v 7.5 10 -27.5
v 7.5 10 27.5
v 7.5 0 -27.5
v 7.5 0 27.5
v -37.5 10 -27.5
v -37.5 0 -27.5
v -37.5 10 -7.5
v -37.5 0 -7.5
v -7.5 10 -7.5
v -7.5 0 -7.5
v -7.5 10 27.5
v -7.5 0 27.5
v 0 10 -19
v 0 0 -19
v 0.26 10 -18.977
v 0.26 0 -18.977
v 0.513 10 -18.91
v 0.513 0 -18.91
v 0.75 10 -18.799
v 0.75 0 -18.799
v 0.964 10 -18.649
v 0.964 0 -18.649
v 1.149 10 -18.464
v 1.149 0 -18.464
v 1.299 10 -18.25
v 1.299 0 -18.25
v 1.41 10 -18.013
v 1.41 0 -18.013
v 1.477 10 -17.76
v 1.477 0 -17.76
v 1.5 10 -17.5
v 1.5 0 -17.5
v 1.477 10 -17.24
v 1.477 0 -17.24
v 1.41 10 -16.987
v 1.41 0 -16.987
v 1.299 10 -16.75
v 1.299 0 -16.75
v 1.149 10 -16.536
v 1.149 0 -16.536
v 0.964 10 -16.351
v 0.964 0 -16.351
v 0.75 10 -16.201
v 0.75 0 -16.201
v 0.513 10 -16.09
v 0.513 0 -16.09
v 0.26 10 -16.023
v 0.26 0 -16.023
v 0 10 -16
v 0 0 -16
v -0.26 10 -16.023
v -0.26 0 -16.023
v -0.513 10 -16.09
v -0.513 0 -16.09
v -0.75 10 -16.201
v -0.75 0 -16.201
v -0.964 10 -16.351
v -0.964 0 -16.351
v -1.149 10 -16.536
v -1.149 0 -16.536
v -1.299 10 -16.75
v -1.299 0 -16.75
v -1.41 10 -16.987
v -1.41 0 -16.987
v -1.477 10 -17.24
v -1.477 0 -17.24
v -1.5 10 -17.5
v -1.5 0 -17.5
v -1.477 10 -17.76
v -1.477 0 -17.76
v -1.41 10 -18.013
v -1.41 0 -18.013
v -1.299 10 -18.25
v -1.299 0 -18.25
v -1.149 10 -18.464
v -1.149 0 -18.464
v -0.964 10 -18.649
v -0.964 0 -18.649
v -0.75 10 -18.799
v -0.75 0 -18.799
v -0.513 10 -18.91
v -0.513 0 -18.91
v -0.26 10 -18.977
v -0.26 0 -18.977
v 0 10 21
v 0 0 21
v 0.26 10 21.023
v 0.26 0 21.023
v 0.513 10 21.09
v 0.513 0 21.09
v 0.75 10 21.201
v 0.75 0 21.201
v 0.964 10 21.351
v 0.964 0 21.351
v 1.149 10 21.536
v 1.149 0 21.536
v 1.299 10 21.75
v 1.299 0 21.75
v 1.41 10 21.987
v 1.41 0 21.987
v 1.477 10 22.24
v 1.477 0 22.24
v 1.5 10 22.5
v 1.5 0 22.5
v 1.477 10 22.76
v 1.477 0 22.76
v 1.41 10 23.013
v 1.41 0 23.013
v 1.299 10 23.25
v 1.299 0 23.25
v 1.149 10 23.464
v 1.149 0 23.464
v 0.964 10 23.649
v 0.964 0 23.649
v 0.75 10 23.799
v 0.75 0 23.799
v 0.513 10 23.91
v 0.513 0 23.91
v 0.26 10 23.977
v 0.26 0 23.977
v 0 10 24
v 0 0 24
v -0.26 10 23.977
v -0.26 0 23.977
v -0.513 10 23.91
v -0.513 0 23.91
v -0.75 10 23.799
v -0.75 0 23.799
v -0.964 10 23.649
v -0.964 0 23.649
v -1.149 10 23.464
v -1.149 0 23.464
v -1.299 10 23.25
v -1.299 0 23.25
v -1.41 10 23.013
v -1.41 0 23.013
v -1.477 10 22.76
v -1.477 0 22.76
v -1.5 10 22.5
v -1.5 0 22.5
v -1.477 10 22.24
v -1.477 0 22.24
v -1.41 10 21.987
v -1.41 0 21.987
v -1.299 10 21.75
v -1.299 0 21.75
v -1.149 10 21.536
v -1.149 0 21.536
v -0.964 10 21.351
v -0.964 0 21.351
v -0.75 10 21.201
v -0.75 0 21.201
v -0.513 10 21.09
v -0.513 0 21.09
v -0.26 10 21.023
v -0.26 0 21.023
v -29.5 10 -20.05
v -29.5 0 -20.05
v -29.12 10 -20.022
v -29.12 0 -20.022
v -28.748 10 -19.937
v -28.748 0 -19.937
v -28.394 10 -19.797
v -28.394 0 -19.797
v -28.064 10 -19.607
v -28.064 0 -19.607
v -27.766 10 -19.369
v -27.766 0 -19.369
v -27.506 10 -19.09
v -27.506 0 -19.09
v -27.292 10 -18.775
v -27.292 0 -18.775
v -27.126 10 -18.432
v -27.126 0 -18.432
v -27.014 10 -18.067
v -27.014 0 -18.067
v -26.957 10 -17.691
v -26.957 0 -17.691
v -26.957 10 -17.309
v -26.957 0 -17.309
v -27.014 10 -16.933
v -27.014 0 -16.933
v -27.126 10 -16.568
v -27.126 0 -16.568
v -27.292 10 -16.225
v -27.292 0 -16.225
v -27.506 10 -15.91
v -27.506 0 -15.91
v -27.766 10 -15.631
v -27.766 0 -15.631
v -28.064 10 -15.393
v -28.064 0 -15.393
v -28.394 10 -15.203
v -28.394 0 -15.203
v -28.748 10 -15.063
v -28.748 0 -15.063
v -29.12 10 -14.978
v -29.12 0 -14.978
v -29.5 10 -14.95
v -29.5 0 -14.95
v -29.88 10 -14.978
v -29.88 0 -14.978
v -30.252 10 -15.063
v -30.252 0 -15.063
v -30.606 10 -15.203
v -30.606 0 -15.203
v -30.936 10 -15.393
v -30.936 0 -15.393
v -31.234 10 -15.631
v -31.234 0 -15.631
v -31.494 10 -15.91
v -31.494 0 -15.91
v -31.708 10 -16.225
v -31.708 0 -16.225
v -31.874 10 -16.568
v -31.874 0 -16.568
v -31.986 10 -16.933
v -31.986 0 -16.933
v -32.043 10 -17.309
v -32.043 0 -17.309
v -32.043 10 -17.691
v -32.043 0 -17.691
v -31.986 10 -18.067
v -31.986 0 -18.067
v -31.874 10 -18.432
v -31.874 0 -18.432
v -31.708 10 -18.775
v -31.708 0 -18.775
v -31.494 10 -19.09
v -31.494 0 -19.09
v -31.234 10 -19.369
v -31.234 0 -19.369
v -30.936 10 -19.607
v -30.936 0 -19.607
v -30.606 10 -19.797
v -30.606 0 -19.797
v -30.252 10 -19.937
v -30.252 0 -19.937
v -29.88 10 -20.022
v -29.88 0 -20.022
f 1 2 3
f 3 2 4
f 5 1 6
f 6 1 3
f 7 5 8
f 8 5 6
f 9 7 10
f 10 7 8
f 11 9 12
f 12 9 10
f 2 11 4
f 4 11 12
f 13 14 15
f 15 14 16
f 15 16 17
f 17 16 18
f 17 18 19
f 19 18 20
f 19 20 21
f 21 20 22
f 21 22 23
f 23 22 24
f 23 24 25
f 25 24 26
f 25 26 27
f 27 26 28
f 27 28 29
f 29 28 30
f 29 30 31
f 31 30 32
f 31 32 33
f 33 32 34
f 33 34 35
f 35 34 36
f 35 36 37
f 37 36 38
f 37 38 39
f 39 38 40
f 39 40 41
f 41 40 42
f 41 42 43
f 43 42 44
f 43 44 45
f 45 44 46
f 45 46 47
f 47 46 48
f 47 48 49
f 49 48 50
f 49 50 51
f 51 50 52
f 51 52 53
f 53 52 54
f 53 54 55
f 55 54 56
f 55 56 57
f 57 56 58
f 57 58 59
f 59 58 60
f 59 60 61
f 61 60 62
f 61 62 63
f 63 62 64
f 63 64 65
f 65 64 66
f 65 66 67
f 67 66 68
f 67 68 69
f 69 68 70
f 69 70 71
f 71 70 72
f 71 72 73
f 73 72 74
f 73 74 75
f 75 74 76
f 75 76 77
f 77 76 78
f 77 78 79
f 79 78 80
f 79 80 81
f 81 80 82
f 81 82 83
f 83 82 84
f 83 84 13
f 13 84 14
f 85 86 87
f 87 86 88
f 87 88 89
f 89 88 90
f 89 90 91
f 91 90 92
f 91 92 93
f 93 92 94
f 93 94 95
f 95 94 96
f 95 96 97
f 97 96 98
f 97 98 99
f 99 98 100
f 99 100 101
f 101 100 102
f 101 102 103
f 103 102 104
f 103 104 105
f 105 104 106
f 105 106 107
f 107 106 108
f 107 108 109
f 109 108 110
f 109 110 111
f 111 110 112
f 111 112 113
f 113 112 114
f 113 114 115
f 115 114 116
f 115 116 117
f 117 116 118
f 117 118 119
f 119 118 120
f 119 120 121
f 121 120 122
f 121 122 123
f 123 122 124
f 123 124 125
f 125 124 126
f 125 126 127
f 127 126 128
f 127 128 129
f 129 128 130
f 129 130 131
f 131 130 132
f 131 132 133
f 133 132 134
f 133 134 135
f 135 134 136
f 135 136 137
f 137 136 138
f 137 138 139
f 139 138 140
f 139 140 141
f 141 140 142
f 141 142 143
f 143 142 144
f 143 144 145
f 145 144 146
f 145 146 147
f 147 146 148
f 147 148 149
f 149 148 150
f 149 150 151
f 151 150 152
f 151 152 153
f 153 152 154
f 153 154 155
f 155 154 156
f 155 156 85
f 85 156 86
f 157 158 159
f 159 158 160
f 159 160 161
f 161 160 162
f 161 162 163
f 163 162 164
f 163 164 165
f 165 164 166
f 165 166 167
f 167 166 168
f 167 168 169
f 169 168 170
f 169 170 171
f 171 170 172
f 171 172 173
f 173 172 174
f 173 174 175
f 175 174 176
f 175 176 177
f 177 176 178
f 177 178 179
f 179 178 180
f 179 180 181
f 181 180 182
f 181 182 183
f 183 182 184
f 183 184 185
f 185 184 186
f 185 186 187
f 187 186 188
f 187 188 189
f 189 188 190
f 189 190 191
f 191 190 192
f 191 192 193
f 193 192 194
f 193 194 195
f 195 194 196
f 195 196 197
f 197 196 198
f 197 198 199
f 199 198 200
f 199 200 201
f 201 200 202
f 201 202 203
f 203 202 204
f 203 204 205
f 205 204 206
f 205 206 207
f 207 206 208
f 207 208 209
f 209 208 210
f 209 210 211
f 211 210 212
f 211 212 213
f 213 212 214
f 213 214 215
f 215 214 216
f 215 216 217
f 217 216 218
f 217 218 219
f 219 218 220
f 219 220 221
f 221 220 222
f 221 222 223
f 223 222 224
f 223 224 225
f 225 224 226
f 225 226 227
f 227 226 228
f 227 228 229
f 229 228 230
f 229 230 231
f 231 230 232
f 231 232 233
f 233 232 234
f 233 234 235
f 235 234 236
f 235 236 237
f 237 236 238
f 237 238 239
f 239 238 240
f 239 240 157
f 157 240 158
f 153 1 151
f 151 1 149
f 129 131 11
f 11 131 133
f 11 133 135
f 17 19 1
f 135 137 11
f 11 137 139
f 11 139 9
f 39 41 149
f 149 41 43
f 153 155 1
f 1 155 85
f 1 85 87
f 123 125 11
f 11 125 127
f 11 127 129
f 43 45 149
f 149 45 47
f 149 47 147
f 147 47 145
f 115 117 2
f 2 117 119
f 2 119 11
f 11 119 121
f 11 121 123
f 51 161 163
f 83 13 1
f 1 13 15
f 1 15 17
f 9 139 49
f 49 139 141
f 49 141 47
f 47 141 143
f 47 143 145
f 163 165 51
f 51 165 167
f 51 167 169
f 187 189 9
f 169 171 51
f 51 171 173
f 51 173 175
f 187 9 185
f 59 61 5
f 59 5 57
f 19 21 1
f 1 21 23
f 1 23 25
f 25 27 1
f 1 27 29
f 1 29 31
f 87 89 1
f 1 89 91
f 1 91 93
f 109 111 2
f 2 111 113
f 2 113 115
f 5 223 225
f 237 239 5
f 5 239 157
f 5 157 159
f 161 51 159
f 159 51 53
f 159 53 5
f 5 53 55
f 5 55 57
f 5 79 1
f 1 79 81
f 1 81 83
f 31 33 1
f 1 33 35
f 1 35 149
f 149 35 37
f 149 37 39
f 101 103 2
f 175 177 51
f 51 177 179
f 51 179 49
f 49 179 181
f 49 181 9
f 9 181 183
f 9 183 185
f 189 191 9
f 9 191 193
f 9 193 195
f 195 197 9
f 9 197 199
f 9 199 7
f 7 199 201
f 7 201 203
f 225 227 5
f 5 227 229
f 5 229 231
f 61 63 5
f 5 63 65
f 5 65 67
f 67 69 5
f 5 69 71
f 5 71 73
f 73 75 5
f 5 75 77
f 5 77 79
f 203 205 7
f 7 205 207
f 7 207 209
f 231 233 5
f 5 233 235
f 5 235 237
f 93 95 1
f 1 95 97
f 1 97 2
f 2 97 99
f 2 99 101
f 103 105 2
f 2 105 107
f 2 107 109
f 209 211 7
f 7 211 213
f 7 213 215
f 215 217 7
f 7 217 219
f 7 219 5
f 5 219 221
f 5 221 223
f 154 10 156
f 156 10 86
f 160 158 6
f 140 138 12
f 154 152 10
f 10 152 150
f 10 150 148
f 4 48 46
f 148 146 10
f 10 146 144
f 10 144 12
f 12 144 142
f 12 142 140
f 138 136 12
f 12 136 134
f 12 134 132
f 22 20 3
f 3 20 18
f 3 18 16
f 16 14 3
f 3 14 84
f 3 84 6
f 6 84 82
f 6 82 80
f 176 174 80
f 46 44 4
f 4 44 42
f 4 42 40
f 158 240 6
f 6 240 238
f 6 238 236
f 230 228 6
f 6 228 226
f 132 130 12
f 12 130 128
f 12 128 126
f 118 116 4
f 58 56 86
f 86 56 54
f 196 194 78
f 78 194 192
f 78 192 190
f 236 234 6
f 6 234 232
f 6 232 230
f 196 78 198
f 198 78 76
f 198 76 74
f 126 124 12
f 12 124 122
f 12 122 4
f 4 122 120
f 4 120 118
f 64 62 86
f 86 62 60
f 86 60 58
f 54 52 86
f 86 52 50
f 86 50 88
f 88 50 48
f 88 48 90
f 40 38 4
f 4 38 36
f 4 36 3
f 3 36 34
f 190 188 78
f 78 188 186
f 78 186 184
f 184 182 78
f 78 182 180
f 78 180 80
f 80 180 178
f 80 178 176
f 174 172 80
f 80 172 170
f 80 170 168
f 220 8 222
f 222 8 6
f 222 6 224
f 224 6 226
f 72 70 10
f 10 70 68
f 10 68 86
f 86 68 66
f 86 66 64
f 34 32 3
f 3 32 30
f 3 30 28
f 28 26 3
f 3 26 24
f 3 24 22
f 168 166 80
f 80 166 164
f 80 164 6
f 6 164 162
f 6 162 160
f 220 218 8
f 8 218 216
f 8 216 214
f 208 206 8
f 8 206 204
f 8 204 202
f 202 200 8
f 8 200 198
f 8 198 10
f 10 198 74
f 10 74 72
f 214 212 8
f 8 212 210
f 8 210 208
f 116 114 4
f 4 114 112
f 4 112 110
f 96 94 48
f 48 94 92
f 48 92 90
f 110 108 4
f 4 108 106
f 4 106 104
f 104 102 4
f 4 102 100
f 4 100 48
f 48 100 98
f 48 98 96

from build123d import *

# Parameters (mm, degrees)
SKETCH1_W           = 15
SKETCH1_H           = 55
SKETCH1_R           = 1.5
SKETCH1_W_2         = 30
SKETCH1_H_2         = 20
SKETCH1_R_2         = 2.55
BOSS_EXTRUDE1_DEPTH = 10


with BuildPart() as part:
    # Sketch1 → Boss-Extrude1 (new body)
    # profile 1 of 2: a face of its own
    with BuildSketch(Plane(origin=(0, 0, 0), x_dir=(1, 0, 0), z_dir=(0, 1, 0))):
        Rectangle(SKETCH1_W, SKETCH1_H)
        with Locations(Location((0, -22.5, 0), (0, 0, 270))):
            Circle(SKETCH1_R, mode=Mode.SUBTRACT)
        with Locations(Location((0, 17.5, 0), (0, 0, 270))):
            Circle(SKETCH1_R, mode=Mode.SUBTRACT)
    # profile 2 of 2: a face of its own
    with BuildSketch(Plane(origin=(0, 0, 0), x_dir=(1, 0, 0), z_dir=(0, 1, 0))):
        with Locations((-22.5, 17.5)):
            Rectangle(SKETCH1_W_2, SKETCH1_H_2)
        with Locations(Location((-29.5, 17.5, 0), (0, 0, 270))):
            Circle(SKETCH1_R_2, mode=Mode.SUBTRACT)
    extrude(amount=BOSS_EXTRUDE1_DEPTH)


solid = part.part
